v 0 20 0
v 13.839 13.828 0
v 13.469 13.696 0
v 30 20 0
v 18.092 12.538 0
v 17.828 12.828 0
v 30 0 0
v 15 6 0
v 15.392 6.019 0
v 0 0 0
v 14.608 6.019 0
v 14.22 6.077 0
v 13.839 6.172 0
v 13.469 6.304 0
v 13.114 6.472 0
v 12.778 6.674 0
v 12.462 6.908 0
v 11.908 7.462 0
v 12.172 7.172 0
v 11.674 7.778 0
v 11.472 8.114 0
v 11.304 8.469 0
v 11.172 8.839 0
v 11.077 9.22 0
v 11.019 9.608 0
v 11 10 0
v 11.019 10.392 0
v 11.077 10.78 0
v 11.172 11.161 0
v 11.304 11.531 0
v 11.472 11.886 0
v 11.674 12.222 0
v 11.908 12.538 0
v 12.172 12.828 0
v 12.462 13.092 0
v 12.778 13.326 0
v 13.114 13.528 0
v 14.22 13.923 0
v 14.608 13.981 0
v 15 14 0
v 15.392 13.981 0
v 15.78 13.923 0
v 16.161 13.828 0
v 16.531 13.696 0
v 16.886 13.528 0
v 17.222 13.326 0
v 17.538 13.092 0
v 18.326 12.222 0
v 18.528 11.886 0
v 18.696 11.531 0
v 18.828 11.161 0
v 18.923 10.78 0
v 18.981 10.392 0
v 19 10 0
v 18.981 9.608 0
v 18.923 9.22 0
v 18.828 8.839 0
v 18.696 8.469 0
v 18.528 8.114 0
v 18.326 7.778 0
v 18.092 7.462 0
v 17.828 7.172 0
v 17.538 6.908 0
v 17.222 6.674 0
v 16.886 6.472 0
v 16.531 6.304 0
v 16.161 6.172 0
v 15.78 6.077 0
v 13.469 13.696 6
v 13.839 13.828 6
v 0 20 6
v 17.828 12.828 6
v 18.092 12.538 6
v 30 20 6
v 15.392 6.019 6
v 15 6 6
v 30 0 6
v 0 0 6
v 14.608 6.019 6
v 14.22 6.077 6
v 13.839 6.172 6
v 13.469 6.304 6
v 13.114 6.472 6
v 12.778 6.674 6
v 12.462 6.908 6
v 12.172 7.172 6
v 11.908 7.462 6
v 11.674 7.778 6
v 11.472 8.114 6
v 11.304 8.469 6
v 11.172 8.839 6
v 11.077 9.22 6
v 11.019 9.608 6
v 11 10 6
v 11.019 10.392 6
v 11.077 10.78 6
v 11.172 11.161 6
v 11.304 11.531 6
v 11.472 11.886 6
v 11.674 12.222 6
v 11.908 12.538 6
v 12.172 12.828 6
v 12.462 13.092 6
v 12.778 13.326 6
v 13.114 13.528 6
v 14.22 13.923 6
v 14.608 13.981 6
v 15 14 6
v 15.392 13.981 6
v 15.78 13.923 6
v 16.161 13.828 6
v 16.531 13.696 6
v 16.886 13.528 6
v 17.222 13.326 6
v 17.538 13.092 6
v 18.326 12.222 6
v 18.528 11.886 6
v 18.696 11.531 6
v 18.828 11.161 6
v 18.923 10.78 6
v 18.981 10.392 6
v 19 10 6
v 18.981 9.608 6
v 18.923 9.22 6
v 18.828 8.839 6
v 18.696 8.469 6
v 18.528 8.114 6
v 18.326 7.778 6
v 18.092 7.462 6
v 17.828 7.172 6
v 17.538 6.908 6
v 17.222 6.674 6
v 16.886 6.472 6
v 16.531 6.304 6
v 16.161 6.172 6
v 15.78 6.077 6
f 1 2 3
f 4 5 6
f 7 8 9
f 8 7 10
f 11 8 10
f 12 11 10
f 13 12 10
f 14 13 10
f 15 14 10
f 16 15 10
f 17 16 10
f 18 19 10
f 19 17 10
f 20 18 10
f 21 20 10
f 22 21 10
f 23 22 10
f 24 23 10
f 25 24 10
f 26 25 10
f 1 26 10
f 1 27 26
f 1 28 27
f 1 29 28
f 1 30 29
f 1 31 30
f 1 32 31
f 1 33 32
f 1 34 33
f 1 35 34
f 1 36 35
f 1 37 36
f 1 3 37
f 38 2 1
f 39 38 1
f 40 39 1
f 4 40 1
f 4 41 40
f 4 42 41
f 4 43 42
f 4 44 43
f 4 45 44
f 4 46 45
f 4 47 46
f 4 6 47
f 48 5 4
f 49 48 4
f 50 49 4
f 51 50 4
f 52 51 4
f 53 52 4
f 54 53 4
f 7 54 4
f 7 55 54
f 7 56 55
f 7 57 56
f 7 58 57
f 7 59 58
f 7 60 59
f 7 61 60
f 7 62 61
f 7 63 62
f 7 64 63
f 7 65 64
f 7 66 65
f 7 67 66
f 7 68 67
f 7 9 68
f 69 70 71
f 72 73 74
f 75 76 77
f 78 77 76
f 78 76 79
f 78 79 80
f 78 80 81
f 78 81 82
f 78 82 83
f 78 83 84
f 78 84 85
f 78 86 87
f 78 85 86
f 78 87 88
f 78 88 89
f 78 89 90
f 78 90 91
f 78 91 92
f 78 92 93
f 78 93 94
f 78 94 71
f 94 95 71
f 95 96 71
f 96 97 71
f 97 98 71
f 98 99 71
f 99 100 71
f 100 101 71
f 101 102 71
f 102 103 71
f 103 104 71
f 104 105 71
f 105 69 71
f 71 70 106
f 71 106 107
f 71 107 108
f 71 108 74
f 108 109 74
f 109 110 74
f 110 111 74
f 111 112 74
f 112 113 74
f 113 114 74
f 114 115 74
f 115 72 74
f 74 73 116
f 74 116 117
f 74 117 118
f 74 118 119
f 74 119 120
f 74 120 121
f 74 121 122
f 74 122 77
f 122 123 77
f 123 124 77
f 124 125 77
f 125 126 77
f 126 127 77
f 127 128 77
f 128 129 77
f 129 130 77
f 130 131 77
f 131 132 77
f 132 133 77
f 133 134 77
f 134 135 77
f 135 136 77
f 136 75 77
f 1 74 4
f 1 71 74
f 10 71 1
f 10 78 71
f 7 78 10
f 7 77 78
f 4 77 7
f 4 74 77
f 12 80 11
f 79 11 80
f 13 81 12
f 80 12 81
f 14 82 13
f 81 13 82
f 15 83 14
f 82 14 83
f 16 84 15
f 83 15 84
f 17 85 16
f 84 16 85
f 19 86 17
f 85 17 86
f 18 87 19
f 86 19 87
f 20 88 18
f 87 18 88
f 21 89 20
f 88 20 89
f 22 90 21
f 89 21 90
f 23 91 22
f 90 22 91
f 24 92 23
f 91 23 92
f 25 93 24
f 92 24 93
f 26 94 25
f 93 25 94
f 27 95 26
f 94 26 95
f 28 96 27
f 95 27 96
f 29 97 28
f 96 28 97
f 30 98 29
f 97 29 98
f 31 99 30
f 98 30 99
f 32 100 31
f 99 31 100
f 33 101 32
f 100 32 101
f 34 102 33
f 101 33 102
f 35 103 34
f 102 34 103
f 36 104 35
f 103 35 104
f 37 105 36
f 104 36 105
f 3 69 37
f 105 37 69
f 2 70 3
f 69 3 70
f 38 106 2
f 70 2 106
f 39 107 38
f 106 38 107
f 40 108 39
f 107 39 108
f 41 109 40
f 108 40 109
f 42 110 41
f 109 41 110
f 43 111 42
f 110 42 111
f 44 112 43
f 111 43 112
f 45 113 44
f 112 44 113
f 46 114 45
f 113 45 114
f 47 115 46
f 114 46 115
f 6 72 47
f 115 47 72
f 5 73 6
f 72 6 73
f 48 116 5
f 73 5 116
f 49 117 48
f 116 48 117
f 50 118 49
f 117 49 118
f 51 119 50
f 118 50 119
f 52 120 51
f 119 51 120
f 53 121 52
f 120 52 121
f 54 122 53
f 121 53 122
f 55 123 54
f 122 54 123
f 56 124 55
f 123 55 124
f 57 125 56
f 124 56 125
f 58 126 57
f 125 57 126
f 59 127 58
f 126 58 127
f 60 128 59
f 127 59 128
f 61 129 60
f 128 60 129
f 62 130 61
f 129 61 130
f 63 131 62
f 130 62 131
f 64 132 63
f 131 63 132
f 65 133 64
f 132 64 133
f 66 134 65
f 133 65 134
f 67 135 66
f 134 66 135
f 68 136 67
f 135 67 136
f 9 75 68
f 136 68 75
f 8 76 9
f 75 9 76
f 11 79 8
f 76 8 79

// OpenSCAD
linear_extrude(height=6)
  difference() {
    square([30, 20]);
    translate([15, 10])
      circle(d=8, $fn=64);
  }
